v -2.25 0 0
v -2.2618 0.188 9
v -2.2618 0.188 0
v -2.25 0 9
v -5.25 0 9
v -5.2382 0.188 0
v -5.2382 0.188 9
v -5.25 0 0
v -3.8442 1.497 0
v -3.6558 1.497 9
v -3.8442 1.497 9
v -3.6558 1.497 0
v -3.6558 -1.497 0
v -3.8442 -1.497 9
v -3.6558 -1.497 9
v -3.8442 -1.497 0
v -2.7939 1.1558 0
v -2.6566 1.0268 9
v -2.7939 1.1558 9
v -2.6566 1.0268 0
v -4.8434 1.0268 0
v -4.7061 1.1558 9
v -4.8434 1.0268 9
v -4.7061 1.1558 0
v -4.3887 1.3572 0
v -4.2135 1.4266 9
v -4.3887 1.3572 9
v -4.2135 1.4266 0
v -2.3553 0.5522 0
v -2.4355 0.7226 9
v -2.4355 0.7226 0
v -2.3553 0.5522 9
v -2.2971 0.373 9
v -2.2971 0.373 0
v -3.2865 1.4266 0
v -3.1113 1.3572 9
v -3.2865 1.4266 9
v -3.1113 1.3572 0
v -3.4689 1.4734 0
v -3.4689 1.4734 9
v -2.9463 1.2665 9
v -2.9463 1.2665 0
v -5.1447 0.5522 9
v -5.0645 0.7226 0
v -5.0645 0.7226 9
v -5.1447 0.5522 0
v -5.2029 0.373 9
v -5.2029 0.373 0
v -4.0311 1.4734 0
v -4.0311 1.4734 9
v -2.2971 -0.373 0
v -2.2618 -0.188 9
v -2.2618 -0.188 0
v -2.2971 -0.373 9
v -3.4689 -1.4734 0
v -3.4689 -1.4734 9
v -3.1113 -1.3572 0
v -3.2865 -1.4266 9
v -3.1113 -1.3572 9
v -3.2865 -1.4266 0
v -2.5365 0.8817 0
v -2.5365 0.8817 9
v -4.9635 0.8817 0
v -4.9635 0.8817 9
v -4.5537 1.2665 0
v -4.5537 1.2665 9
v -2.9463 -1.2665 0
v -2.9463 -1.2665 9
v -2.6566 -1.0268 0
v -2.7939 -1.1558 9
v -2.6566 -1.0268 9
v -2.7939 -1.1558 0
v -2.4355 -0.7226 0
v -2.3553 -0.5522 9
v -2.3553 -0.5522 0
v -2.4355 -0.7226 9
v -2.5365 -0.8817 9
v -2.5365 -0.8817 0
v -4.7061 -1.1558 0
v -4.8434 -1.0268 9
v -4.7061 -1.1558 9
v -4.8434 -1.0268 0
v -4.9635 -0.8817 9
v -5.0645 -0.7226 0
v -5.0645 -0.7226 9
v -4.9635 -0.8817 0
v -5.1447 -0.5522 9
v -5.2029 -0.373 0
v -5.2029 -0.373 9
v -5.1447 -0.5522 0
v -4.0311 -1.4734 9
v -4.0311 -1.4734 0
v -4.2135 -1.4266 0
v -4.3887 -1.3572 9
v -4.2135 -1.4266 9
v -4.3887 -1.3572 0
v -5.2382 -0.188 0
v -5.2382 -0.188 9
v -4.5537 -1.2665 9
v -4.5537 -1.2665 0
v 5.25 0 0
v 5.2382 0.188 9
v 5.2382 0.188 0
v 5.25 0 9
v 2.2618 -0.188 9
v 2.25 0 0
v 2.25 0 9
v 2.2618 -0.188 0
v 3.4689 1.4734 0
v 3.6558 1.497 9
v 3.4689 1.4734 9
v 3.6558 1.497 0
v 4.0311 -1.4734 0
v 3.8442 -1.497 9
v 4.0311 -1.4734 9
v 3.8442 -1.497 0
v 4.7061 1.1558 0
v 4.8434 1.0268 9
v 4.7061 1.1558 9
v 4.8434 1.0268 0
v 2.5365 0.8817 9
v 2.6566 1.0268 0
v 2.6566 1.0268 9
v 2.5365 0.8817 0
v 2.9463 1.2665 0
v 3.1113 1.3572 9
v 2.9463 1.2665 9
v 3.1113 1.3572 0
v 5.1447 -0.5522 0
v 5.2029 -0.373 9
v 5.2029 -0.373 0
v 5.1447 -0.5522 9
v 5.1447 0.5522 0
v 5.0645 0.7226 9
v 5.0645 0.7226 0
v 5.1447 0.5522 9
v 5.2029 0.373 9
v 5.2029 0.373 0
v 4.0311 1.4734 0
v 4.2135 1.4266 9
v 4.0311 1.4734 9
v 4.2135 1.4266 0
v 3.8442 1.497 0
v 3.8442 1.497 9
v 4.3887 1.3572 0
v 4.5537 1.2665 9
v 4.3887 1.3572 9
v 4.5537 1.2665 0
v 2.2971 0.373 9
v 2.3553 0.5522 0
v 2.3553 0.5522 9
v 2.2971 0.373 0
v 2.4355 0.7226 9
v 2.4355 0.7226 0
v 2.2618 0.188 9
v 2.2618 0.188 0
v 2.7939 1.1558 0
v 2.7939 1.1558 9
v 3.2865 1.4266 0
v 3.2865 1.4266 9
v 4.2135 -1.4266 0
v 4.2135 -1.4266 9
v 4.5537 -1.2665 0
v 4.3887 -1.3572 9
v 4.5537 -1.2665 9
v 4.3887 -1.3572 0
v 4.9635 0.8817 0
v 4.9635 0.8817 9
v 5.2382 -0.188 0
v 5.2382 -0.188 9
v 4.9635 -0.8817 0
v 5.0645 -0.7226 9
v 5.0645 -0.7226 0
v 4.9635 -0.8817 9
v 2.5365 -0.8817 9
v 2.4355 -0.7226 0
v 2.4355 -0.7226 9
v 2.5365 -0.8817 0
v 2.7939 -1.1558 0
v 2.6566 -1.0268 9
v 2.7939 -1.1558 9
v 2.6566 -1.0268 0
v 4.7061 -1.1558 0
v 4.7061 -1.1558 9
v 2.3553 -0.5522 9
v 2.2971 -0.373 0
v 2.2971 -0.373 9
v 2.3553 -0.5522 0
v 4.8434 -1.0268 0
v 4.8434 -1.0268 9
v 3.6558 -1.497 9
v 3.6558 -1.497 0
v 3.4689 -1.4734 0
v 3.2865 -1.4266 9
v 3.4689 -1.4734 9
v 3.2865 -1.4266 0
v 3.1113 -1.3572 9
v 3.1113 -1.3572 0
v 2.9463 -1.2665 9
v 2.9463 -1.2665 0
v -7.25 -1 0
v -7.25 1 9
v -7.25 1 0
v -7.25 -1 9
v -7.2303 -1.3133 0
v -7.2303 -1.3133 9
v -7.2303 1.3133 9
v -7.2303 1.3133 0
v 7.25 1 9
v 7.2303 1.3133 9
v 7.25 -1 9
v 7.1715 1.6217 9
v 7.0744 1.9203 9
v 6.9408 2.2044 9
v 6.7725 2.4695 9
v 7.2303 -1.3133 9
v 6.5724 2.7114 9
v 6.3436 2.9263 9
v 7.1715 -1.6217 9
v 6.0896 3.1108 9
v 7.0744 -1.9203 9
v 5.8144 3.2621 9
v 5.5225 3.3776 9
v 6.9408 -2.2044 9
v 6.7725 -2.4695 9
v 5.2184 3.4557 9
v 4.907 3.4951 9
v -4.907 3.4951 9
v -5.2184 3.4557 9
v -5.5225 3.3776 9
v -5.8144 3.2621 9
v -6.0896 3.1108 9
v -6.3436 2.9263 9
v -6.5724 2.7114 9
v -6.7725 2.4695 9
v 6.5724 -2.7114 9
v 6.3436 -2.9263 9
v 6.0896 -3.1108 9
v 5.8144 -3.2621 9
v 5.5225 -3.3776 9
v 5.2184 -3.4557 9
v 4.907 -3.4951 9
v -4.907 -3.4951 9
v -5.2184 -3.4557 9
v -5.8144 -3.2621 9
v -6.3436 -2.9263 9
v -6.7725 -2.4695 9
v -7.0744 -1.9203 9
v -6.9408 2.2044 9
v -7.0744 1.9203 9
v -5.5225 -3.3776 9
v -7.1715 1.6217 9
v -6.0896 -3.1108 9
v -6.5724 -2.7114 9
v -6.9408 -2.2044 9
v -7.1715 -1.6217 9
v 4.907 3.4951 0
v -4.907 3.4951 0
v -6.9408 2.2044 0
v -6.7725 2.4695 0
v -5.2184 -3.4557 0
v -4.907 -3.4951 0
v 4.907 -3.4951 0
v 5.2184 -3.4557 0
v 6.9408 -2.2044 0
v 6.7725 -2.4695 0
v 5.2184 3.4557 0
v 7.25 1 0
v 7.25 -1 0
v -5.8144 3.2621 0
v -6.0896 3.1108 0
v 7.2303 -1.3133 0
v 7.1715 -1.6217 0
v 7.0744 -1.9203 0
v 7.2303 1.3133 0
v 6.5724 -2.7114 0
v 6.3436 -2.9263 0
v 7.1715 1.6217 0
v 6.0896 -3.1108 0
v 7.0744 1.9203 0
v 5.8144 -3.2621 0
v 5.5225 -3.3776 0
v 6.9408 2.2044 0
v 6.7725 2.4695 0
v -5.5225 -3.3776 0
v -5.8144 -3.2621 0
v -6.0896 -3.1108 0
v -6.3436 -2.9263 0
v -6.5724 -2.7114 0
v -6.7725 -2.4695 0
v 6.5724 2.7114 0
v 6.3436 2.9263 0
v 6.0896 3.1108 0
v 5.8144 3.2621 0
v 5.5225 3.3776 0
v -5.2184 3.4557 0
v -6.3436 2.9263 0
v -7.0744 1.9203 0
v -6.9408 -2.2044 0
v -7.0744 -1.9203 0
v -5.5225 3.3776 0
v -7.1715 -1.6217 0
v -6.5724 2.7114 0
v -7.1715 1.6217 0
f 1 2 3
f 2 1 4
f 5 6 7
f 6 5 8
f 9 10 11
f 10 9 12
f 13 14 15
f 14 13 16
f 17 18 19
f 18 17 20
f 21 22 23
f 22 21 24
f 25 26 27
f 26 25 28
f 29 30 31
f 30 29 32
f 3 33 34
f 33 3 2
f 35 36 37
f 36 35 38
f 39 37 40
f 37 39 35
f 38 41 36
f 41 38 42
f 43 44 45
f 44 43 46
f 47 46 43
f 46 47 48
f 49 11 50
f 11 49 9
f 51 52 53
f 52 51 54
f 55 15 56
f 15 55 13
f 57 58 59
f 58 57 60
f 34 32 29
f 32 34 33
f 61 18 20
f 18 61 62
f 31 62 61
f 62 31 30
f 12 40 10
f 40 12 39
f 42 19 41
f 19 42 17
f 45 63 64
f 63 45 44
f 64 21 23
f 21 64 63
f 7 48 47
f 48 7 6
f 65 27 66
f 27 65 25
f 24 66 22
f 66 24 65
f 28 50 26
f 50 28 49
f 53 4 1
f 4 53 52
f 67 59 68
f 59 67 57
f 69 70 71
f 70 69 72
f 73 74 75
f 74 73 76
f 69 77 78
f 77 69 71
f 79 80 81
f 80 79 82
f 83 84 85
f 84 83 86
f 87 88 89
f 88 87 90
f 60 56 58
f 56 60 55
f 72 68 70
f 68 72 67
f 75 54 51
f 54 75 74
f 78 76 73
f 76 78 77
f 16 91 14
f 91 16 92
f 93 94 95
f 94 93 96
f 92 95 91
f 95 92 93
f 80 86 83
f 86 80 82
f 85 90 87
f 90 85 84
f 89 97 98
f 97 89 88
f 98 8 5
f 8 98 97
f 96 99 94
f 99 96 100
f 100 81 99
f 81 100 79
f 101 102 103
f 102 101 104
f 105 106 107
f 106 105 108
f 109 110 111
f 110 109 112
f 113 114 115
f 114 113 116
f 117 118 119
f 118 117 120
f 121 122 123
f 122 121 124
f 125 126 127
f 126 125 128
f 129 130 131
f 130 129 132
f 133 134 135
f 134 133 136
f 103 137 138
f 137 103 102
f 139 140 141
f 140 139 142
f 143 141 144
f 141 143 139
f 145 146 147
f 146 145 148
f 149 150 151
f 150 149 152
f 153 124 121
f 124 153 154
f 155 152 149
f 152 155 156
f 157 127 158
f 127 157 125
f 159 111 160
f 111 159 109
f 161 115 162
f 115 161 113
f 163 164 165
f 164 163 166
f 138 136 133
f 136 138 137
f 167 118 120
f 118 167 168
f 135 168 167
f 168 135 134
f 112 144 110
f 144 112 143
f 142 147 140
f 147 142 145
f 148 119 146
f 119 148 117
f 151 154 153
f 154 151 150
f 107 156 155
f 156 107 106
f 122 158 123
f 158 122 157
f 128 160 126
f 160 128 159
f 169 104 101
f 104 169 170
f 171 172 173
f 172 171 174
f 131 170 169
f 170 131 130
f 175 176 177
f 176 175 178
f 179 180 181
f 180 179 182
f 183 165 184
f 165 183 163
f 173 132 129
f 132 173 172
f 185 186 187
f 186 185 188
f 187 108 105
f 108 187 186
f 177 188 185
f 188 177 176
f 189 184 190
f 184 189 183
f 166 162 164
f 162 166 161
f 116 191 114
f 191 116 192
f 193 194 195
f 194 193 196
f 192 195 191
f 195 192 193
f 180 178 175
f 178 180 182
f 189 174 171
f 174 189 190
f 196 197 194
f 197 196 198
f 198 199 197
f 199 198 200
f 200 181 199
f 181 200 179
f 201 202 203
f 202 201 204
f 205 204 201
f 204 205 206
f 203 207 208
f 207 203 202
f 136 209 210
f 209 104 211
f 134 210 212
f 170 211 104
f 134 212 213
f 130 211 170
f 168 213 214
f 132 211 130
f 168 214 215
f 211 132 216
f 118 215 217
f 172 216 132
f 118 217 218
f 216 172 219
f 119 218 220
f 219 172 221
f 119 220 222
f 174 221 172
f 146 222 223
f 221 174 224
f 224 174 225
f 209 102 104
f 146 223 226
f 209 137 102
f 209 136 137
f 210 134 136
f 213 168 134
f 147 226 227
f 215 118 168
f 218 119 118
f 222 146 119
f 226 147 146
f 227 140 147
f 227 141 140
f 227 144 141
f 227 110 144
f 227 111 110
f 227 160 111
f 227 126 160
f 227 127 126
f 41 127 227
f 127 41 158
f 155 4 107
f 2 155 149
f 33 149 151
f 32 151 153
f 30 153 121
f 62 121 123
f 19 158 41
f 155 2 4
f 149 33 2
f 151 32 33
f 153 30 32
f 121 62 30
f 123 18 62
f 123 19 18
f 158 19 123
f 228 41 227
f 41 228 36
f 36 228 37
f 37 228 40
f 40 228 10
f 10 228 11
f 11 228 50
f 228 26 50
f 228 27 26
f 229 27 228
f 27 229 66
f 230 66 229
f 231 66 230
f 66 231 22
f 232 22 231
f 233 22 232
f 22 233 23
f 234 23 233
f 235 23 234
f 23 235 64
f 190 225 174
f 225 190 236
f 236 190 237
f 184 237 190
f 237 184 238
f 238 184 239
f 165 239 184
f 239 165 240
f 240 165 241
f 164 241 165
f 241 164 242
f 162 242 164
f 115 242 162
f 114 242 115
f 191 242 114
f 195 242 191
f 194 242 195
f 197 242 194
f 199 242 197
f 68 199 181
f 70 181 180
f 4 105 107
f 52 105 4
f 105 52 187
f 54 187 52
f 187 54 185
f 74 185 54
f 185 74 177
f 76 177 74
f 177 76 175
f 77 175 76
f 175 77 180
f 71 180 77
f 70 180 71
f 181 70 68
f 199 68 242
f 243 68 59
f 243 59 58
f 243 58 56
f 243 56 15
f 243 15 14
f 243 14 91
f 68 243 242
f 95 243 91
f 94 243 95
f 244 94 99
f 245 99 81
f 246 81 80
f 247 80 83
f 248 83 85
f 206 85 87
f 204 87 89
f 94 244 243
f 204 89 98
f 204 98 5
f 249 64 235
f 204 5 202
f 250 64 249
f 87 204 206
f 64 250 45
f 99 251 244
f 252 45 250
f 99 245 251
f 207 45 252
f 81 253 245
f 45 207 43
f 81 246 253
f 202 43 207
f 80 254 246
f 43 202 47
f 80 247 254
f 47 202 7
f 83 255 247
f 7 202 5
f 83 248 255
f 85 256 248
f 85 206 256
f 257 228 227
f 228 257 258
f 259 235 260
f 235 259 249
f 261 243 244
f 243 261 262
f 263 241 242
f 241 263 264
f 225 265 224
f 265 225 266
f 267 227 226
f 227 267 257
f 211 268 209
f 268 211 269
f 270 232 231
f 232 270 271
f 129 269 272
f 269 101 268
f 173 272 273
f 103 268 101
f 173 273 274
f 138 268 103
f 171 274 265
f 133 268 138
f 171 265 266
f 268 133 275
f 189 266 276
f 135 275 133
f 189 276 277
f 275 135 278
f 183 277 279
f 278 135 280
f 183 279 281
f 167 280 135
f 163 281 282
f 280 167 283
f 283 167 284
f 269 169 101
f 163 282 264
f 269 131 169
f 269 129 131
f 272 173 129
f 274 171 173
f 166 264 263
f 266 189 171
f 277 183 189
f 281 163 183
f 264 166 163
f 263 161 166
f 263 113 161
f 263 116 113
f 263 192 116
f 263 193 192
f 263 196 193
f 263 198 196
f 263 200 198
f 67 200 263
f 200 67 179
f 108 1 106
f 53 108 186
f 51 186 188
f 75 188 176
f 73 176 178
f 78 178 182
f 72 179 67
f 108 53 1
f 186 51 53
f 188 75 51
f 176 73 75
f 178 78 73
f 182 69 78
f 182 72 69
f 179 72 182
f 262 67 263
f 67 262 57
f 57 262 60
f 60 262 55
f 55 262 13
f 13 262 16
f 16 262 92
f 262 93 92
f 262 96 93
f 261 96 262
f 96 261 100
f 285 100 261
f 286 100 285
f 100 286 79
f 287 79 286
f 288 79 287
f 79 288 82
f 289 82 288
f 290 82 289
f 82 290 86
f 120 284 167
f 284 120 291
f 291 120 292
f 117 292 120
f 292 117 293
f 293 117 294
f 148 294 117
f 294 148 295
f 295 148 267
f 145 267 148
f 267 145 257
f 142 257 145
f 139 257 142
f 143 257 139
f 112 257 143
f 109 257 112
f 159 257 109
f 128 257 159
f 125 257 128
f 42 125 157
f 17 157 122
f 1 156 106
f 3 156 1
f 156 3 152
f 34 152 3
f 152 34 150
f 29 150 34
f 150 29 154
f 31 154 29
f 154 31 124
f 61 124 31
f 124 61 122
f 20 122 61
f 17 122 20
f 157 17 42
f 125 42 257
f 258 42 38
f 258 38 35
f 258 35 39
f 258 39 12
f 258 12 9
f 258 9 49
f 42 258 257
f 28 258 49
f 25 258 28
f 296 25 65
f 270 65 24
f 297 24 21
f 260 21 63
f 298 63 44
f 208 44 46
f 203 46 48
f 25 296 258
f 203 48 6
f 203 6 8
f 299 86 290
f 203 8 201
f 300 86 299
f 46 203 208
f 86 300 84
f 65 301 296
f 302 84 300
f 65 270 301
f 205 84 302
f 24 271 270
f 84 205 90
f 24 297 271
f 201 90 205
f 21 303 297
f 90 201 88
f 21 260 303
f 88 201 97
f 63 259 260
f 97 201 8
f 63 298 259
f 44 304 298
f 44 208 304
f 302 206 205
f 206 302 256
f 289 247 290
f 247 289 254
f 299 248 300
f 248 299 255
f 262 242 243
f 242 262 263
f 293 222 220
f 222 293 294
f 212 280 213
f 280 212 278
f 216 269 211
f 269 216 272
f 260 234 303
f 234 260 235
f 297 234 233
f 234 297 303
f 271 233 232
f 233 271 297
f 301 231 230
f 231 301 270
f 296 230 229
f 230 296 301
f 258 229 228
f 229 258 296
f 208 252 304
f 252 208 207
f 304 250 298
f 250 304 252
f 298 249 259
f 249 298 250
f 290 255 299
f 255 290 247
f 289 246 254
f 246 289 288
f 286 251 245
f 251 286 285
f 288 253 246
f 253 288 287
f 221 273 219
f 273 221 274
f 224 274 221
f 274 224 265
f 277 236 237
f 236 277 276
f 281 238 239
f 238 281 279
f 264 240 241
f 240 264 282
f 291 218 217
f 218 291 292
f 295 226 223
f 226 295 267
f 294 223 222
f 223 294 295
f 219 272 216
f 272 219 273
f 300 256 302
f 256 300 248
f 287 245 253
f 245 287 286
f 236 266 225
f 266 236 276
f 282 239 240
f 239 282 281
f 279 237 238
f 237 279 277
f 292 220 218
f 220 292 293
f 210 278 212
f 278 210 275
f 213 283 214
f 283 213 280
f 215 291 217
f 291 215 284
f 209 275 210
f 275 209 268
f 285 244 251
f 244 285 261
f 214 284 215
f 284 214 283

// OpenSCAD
$fn = 50;


difference() {
	union() {
		translate(v = [0, 0, 0]) {
			rotate(a = [0, 0, 0]) {
				hull() {
					translate(v = [-4.7500000000, 1.0000000000, 0]) {
						rotate(a = [0, 0, 0]) {
							translate(v = [0, 0, 0]) {
								rotate(a = [0, 0, 0]) {
									cylinder(h = 9, r = 2.5000000000);
								}
							}
						}
					}
					translate(v = [4.7500000000, 1.0000000000, 0]) {
						rotate(a = [0, 0, 0]) {
							translate(v = [0, 0, 0]) {
								rotate(a = [0, 0, 0]) {
									cylinder(h = 9, r = 2.5000000000);
								}
							}
						}
					}
					translate(v = [-4.7500000000, -1.0000000000, 0]) {
						rotate(a = [0, 0, 0]) {
							translate(v = [0, 0, 0]) {
								rotate(a = [0, 0, 0]) {
									cylinder(h = 9, r = 2.5000000000);
								}
							}
						}
					}
					translate(v = [4.7500000000, -1.0000000000, 0]) {
						rotate(a = [0, 0, 0]) {
							translate(v = [0, 0, 0]) {
								rotate(a = [0, 0, 0]) {
									cylinder(h = 9, r = 2.5000000000);
								}
							}
						}
					}
				}
			}
		}
	}
	union() {
		translate(v = [-3.7500000000, 0.0000000000, 0]) {
			rotate(a = [0, 0, 0]) {
				translate(v = [0, 0, -50]) {
					rotate(a = [0, 0, 0]) {
						cylinder(h = 100, r = 1.5000000000);
					}
				}
			}
		}
		translate(v = [3.7500000000, 0.0000000000, 0]) {
			rotate(a = [0, 0, 0]) {
				translate(v = [0, 0, -50]) {
					rotate(a = [0, 0, 0]) {
						cylinder(h = 100, r = 1.5000000000);
					}
				}
			}
		}
	}
}
